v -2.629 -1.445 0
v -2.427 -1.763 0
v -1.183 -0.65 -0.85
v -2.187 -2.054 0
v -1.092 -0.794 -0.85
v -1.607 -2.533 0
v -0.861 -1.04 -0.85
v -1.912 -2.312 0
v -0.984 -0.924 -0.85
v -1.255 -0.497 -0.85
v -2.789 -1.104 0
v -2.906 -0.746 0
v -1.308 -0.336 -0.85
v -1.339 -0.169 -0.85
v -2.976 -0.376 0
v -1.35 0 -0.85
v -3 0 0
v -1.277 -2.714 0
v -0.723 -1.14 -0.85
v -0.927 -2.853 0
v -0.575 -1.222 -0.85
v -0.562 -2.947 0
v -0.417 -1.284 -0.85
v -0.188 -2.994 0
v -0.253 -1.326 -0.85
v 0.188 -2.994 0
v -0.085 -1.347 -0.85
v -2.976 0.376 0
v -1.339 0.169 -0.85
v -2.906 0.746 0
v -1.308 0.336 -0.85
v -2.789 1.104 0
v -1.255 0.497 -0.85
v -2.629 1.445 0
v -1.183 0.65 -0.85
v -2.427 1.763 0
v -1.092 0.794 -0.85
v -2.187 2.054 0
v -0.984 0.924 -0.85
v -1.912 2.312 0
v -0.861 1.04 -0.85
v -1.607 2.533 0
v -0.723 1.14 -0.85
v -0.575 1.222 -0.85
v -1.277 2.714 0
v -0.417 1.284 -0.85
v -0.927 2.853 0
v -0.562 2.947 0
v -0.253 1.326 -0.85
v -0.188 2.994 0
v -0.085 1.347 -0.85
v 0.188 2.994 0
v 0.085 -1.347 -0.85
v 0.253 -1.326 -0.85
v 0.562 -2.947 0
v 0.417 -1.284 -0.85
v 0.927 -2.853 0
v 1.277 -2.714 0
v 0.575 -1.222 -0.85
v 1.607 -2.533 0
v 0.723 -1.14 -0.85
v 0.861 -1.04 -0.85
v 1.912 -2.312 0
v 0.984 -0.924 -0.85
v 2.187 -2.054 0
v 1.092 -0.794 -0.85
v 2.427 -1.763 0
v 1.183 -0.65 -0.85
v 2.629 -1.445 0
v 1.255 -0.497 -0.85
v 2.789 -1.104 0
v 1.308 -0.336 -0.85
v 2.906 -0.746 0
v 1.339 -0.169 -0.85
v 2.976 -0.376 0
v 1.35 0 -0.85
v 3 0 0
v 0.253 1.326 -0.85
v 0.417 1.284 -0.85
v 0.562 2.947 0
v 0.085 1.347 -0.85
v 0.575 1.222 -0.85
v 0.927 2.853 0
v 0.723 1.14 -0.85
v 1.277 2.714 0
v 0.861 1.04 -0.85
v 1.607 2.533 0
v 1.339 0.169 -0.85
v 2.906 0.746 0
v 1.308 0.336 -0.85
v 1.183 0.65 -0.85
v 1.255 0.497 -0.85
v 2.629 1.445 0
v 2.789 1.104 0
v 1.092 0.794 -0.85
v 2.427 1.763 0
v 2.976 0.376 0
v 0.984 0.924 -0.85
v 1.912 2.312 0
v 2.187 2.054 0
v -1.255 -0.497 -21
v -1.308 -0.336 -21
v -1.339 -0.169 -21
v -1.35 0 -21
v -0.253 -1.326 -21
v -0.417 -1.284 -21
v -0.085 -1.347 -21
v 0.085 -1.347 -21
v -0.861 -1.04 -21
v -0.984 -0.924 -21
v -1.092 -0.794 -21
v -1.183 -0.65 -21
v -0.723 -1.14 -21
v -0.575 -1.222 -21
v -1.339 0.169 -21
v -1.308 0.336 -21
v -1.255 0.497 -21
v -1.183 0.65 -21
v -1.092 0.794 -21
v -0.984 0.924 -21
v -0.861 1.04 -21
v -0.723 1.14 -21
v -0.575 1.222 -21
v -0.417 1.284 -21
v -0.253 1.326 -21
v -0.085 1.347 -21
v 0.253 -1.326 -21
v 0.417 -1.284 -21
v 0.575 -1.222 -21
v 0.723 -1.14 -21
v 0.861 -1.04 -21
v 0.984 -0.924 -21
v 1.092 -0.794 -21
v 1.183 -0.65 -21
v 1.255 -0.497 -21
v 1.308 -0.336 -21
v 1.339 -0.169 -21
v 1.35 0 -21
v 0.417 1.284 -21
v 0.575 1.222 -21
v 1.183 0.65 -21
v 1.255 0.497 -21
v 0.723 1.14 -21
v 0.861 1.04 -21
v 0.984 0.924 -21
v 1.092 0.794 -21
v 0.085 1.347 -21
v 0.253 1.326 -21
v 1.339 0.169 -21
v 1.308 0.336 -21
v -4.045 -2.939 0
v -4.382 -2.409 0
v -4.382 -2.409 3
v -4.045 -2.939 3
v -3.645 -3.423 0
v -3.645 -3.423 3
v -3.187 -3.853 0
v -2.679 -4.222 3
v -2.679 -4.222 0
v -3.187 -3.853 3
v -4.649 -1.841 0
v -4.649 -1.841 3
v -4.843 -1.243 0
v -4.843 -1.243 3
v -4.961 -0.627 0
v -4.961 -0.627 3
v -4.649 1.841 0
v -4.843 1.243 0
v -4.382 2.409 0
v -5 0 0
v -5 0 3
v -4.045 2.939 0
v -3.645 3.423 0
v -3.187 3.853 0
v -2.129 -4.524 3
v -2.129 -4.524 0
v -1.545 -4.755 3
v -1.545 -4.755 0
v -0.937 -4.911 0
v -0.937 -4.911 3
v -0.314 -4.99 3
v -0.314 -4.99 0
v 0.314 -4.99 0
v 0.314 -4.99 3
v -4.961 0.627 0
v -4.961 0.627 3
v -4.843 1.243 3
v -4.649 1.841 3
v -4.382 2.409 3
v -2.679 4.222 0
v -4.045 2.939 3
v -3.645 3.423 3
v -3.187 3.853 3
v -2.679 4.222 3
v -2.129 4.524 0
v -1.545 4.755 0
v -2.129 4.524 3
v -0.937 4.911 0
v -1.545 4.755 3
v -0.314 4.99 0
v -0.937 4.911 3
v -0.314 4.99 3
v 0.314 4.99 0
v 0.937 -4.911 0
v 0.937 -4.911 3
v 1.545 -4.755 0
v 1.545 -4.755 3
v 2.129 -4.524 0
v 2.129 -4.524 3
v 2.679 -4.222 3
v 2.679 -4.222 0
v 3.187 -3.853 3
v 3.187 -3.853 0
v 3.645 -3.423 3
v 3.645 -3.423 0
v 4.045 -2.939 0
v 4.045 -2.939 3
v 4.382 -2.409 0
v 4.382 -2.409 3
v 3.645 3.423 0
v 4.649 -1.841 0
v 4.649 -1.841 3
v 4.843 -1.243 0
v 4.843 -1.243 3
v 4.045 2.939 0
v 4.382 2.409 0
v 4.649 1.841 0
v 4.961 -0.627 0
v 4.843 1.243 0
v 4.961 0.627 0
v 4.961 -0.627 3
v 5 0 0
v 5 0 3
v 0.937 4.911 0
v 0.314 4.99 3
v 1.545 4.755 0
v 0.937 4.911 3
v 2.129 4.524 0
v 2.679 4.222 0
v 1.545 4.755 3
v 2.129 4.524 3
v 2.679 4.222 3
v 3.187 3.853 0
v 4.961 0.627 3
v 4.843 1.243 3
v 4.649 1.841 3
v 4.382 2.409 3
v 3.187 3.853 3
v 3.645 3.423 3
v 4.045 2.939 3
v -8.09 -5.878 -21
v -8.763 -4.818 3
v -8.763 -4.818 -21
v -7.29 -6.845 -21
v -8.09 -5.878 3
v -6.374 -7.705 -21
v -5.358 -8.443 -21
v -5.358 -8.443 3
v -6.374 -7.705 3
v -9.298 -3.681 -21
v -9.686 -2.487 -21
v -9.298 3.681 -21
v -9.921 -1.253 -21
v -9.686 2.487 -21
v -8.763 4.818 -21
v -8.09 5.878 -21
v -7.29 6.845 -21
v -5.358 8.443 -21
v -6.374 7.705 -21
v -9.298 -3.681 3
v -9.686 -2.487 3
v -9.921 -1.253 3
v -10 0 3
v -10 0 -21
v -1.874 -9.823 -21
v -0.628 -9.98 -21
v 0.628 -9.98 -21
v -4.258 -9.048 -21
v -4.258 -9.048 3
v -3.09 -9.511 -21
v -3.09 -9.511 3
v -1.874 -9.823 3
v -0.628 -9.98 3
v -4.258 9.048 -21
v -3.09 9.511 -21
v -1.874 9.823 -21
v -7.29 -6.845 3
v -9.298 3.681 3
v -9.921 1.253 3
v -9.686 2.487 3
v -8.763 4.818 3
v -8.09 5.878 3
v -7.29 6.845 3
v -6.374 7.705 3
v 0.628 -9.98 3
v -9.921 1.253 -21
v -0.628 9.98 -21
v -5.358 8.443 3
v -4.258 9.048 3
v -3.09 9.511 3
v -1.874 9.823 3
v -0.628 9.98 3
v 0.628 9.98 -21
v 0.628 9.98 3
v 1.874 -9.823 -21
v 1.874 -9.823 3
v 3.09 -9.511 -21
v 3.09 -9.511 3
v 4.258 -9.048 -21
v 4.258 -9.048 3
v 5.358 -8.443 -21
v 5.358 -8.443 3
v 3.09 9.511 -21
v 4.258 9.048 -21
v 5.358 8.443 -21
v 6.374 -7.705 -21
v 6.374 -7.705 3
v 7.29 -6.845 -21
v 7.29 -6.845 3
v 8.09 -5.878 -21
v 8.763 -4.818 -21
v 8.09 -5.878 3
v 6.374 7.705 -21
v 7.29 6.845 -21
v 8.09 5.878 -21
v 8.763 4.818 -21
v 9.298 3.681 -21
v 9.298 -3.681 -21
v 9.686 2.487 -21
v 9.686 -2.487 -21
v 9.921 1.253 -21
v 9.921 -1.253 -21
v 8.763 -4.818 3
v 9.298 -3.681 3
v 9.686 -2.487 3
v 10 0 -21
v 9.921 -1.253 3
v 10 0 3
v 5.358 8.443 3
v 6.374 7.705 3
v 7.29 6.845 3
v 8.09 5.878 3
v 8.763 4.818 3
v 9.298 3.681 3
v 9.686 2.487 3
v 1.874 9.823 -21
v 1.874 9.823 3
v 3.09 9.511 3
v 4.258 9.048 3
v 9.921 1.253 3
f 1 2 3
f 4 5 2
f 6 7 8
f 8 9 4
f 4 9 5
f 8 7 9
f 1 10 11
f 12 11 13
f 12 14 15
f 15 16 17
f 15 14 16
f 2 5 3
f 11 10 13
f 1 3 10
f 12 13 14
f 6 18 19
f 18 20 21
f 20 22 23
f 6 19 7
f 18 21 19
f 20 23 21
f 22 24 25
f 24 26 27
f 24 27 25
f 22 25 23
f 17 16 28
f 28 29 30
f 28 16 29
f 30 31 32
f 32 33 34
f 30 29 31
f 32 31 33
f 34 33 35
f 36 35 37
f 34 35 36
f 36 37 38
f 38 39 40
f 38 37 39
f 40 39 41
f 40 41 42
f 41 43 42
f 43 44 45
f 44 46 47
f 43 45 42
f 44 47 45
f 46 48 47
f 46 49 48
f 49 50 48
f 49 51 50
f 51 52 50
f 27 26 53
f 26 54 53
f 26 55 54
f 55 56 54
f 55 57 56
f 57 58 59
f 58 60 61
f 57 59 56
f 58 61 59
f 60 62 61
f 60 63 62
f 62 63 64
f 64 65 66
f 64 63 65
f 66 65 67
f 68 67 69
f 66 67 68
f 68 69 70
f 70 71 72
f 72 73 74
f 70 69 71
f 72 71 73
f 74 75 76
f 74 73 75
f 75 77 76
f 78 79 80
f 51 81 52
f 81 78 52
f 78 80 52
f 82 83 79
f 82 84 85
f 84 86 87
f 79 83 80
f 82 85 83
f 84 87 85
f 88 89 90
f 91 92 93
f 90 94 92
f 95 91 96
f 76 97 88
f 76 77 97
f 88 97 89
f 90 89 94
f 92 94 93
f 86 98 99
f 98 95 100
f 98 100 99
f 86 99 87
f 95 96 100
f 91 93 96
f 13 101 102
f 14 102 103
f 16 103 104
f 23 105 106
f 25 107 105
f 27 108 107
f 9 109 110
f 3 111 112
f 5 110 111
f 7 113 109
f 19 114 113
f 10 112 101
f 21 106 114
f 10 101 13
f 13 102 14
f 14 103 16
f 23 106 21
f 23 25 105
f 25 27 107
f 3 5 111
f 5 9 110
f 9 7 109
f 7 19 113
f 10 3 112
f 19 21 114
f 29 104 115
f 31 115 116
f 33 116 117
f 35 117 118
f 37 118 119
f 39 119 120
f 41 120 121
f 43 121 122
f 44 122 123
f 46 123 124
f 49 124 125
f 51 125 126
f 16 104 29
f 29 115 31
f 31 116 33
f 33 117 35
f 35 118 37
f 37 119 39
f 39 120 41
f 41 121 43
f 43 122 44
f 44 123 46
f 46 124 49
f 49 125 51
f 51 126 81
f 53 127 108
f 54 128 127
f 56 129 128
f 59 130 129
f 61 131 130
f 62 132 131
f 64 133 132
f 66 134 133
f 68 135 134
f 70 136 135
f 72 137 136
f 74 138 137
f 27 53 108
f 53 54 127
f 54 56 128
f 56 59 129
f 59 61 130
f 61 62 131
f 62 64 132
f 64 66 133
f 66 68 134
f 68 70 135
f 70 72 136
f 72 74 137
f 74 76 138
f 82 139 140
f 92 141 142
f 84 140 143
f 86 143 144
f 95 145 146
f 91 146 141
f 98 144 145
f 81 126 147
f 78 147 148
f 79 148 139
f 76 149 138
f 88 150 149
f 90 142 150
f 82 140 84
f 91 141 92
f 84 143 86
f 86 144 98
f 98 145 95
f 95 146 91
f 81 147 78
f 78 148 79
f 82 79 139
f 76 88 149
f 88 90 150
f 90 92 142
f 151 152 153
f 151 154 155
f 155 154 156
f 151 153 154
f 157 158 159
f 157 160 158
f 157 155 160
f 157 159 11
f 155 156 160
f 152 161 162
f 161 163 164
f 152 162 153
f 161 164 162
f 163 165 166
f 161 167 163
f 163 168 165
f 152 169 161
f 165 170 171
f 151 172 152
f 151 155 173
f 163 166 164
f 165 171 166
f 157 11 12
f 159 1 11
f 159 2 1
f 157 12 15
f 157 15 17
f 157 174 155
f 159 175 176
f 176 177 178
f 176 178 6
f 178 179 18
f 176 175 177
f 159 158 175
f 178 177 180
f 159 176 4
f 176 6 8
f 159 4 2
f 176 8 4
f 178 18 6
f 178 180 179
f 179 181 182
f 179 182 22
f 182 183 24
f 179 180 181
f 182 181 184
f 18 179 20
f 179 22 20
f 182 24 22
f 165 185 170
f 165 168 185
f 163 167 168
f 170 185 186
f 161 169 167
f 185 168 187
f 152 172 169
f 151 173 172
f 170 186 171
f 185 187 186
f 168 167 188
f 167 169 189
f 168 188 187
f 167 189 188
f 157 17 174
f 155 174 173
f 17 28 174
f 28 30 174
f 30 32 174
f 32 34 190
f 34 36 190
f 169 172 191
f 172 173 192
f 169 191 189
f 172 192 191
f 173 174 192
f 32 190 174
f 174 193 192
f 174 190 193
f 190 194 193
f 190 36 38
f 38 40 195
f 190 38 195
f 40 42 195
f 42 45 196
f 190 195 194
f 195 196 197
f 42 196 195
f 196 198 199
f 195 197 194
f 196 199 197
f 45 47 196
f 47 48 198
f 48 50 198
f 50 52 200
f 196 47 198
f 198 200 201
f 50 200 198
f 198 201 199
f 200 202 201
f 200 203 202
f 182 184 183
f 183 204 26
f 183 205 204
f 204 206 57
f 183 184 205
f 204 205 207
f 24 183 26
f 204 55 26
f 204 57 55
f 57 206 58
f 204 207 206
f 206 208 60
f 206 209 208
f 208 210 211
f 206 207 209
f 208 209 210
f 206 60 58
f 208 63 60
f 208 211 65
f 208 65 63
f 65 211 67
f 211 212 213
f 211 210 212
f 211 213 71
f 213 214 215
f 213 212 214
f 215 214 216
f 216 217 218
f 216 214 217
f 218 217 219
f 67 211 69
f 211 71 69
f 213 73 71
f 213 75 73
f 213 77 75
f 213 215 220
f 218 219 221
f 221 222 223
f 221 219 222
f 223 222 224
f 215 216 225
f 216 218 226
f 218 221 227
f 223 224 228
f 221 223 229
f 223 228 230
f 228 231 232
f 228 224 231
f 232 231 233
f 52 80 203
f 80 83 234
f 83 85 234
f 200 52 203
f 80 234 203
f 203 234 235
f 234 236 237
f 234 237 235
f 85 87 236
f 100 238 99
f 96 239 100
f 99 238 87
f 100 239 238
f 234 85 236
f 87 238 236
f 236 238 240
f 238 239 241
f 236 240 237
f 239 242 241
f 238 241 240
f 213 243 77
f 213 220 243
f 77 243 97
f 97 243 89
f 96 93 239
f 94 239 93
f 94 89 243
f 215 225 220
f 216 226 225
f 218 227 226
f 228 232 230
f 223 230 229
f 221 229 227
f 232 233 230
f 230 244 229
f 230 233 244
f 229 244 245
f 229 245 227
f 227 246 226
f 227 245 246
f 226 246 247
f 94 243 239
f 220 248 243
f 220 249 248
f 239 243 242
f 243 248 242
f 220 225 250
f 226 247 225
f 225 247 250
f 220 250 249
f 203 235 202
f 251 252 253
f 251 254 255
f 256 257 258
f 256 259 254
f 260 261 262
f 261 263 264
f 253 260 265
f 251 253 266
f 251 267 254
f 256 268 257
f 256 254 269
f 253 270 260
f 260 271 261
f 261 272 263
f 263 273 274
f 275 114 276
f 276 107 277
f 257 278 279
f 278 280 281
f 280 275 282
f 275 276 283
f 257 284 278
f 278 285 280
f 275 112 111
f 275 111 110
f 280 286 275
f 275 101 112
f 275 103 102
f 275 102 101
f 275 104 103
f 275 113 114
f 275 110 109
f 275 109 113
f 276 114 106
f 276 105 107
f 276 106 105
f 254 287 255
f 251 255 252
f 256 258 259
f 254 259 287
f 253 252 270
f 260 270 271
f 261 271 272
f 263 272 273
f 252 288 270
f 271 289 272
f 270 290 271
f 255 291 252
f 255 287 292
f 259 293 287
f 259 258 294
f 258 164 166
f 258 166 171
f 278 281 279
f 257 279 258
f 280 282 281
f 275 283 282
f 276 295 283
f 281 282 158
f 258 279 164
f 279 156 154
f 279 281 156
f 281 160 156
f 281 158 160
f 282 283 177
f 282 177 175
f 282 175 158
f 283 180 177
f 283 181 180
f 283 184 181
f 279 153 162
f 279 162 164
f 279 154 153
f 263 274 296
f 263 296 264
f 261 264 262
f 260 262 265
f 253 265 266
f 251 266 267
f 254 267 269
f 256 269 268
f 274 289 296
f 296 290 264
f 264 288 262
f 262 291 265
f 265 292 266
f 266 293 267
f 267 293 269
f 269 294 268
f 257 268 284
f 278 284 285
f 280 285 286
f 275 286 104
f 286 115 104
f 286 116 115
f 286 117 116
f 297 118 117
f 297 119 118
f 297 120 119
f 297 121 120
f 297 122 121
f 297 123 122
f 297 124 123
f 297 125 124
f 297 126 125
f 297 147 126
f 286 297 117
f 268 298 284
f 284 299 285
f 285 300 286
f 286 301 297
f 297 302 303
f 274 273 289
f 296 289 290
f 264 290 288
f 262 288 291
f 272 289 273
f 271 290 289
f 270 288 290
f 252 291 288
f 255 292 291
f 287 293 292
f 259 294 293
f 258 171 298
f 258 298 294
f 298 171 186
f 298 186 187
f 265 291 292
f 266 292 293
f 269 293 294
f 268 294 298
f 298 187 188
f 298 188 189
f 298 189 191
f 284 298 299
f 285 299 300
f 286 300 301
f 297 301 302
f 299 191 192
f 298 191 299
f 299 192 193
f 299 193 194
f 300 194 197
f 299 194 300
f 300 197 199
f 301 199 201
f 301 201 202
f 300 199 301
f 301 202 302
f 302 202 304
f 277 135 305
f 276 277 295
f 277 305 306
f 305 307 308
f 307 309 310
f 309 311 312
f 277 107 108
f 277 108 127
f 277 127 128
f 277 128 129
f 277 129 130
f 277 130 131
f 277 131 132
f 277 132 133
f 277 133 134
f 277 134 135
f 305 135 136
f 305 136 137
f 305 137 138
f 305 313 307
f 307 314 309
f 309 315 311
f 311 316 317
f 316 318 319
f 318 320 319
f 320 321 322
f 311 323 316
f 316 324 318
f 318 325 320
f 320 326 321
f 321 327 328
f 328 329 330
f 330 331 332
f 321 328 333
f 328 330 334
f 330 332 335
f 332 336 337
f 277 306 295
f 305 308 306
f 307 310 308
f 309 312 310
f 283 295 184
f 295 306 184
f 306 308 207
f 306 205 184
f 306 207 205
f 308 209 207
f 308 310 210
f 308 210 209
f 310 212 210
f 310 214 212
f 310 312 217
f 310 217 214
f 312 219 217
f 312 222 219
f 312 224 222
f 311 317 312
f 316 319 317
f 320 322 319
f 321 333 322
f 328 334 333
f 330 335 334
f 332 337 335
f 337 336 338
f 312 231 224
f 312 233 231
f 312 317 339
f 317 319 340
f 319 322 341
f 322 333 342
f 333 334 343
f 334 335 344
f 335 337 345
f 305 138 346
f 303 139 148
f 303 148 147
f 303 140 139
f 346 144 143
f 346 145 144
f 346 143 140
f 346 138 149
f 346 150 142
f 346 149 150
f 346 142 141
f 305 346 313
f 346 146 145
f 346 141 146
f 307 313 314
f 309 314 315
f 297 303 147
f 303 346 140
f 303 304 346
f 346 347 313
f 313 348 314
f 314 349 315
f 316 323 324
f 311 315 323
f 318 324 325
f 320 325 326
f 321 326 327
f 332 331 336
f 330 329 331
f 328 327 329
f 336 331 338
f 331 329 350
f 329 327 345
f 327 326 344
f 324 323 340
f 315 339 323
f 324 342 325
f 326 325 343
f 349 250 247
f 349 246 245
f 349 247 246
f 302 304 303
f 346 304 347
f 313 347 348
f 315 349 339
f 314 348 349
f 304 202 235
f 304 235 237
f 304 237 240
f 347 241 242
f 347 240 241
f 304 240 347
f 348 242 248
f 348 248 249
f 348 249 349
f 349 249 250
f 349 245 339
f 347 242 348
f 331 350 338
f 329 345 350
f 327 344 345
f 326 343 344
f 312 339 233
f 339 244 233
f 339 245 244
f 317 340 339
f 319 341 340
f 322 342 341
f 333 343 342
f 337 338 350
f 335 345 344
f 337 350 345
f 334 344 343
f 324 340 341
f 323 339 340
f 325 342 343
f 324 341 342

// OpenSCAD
$fn = 50;


difference() {
	union() {
		translate(v = [0, 0, -21.0000000000]) {
			cylinder(h = 24, r = 10.0000000000);
		}
	}
	union() {
		translate(v = [0, 0, 0]) {
			rotate(a = [0, 0, 0]) {
				difference() {
					union() {
						translate(v = [0, 0, -24.0000000000]) {
							cylinder(h = 24, r = 1.0000000000);
						}
						translate(v = [0, 0, -0.8500000000]) {
							cylinder(h = 0.8500000000, r1 = 1.3500000000, r2 = 3.0000000000);
						}
						translate(v = [0, 0, -24.0000000000]) {
							cylinder(h = 24, r = 1.3500000000);
						}
						translate(v = [0, 0, -24.0000000000]) {
							cylinder(h = 24, r = 1.0000000000);
						}
					}
					union();
				}
			}
		}
		#cylinder(h = 3, r = 5.0000000000);
	}
}
